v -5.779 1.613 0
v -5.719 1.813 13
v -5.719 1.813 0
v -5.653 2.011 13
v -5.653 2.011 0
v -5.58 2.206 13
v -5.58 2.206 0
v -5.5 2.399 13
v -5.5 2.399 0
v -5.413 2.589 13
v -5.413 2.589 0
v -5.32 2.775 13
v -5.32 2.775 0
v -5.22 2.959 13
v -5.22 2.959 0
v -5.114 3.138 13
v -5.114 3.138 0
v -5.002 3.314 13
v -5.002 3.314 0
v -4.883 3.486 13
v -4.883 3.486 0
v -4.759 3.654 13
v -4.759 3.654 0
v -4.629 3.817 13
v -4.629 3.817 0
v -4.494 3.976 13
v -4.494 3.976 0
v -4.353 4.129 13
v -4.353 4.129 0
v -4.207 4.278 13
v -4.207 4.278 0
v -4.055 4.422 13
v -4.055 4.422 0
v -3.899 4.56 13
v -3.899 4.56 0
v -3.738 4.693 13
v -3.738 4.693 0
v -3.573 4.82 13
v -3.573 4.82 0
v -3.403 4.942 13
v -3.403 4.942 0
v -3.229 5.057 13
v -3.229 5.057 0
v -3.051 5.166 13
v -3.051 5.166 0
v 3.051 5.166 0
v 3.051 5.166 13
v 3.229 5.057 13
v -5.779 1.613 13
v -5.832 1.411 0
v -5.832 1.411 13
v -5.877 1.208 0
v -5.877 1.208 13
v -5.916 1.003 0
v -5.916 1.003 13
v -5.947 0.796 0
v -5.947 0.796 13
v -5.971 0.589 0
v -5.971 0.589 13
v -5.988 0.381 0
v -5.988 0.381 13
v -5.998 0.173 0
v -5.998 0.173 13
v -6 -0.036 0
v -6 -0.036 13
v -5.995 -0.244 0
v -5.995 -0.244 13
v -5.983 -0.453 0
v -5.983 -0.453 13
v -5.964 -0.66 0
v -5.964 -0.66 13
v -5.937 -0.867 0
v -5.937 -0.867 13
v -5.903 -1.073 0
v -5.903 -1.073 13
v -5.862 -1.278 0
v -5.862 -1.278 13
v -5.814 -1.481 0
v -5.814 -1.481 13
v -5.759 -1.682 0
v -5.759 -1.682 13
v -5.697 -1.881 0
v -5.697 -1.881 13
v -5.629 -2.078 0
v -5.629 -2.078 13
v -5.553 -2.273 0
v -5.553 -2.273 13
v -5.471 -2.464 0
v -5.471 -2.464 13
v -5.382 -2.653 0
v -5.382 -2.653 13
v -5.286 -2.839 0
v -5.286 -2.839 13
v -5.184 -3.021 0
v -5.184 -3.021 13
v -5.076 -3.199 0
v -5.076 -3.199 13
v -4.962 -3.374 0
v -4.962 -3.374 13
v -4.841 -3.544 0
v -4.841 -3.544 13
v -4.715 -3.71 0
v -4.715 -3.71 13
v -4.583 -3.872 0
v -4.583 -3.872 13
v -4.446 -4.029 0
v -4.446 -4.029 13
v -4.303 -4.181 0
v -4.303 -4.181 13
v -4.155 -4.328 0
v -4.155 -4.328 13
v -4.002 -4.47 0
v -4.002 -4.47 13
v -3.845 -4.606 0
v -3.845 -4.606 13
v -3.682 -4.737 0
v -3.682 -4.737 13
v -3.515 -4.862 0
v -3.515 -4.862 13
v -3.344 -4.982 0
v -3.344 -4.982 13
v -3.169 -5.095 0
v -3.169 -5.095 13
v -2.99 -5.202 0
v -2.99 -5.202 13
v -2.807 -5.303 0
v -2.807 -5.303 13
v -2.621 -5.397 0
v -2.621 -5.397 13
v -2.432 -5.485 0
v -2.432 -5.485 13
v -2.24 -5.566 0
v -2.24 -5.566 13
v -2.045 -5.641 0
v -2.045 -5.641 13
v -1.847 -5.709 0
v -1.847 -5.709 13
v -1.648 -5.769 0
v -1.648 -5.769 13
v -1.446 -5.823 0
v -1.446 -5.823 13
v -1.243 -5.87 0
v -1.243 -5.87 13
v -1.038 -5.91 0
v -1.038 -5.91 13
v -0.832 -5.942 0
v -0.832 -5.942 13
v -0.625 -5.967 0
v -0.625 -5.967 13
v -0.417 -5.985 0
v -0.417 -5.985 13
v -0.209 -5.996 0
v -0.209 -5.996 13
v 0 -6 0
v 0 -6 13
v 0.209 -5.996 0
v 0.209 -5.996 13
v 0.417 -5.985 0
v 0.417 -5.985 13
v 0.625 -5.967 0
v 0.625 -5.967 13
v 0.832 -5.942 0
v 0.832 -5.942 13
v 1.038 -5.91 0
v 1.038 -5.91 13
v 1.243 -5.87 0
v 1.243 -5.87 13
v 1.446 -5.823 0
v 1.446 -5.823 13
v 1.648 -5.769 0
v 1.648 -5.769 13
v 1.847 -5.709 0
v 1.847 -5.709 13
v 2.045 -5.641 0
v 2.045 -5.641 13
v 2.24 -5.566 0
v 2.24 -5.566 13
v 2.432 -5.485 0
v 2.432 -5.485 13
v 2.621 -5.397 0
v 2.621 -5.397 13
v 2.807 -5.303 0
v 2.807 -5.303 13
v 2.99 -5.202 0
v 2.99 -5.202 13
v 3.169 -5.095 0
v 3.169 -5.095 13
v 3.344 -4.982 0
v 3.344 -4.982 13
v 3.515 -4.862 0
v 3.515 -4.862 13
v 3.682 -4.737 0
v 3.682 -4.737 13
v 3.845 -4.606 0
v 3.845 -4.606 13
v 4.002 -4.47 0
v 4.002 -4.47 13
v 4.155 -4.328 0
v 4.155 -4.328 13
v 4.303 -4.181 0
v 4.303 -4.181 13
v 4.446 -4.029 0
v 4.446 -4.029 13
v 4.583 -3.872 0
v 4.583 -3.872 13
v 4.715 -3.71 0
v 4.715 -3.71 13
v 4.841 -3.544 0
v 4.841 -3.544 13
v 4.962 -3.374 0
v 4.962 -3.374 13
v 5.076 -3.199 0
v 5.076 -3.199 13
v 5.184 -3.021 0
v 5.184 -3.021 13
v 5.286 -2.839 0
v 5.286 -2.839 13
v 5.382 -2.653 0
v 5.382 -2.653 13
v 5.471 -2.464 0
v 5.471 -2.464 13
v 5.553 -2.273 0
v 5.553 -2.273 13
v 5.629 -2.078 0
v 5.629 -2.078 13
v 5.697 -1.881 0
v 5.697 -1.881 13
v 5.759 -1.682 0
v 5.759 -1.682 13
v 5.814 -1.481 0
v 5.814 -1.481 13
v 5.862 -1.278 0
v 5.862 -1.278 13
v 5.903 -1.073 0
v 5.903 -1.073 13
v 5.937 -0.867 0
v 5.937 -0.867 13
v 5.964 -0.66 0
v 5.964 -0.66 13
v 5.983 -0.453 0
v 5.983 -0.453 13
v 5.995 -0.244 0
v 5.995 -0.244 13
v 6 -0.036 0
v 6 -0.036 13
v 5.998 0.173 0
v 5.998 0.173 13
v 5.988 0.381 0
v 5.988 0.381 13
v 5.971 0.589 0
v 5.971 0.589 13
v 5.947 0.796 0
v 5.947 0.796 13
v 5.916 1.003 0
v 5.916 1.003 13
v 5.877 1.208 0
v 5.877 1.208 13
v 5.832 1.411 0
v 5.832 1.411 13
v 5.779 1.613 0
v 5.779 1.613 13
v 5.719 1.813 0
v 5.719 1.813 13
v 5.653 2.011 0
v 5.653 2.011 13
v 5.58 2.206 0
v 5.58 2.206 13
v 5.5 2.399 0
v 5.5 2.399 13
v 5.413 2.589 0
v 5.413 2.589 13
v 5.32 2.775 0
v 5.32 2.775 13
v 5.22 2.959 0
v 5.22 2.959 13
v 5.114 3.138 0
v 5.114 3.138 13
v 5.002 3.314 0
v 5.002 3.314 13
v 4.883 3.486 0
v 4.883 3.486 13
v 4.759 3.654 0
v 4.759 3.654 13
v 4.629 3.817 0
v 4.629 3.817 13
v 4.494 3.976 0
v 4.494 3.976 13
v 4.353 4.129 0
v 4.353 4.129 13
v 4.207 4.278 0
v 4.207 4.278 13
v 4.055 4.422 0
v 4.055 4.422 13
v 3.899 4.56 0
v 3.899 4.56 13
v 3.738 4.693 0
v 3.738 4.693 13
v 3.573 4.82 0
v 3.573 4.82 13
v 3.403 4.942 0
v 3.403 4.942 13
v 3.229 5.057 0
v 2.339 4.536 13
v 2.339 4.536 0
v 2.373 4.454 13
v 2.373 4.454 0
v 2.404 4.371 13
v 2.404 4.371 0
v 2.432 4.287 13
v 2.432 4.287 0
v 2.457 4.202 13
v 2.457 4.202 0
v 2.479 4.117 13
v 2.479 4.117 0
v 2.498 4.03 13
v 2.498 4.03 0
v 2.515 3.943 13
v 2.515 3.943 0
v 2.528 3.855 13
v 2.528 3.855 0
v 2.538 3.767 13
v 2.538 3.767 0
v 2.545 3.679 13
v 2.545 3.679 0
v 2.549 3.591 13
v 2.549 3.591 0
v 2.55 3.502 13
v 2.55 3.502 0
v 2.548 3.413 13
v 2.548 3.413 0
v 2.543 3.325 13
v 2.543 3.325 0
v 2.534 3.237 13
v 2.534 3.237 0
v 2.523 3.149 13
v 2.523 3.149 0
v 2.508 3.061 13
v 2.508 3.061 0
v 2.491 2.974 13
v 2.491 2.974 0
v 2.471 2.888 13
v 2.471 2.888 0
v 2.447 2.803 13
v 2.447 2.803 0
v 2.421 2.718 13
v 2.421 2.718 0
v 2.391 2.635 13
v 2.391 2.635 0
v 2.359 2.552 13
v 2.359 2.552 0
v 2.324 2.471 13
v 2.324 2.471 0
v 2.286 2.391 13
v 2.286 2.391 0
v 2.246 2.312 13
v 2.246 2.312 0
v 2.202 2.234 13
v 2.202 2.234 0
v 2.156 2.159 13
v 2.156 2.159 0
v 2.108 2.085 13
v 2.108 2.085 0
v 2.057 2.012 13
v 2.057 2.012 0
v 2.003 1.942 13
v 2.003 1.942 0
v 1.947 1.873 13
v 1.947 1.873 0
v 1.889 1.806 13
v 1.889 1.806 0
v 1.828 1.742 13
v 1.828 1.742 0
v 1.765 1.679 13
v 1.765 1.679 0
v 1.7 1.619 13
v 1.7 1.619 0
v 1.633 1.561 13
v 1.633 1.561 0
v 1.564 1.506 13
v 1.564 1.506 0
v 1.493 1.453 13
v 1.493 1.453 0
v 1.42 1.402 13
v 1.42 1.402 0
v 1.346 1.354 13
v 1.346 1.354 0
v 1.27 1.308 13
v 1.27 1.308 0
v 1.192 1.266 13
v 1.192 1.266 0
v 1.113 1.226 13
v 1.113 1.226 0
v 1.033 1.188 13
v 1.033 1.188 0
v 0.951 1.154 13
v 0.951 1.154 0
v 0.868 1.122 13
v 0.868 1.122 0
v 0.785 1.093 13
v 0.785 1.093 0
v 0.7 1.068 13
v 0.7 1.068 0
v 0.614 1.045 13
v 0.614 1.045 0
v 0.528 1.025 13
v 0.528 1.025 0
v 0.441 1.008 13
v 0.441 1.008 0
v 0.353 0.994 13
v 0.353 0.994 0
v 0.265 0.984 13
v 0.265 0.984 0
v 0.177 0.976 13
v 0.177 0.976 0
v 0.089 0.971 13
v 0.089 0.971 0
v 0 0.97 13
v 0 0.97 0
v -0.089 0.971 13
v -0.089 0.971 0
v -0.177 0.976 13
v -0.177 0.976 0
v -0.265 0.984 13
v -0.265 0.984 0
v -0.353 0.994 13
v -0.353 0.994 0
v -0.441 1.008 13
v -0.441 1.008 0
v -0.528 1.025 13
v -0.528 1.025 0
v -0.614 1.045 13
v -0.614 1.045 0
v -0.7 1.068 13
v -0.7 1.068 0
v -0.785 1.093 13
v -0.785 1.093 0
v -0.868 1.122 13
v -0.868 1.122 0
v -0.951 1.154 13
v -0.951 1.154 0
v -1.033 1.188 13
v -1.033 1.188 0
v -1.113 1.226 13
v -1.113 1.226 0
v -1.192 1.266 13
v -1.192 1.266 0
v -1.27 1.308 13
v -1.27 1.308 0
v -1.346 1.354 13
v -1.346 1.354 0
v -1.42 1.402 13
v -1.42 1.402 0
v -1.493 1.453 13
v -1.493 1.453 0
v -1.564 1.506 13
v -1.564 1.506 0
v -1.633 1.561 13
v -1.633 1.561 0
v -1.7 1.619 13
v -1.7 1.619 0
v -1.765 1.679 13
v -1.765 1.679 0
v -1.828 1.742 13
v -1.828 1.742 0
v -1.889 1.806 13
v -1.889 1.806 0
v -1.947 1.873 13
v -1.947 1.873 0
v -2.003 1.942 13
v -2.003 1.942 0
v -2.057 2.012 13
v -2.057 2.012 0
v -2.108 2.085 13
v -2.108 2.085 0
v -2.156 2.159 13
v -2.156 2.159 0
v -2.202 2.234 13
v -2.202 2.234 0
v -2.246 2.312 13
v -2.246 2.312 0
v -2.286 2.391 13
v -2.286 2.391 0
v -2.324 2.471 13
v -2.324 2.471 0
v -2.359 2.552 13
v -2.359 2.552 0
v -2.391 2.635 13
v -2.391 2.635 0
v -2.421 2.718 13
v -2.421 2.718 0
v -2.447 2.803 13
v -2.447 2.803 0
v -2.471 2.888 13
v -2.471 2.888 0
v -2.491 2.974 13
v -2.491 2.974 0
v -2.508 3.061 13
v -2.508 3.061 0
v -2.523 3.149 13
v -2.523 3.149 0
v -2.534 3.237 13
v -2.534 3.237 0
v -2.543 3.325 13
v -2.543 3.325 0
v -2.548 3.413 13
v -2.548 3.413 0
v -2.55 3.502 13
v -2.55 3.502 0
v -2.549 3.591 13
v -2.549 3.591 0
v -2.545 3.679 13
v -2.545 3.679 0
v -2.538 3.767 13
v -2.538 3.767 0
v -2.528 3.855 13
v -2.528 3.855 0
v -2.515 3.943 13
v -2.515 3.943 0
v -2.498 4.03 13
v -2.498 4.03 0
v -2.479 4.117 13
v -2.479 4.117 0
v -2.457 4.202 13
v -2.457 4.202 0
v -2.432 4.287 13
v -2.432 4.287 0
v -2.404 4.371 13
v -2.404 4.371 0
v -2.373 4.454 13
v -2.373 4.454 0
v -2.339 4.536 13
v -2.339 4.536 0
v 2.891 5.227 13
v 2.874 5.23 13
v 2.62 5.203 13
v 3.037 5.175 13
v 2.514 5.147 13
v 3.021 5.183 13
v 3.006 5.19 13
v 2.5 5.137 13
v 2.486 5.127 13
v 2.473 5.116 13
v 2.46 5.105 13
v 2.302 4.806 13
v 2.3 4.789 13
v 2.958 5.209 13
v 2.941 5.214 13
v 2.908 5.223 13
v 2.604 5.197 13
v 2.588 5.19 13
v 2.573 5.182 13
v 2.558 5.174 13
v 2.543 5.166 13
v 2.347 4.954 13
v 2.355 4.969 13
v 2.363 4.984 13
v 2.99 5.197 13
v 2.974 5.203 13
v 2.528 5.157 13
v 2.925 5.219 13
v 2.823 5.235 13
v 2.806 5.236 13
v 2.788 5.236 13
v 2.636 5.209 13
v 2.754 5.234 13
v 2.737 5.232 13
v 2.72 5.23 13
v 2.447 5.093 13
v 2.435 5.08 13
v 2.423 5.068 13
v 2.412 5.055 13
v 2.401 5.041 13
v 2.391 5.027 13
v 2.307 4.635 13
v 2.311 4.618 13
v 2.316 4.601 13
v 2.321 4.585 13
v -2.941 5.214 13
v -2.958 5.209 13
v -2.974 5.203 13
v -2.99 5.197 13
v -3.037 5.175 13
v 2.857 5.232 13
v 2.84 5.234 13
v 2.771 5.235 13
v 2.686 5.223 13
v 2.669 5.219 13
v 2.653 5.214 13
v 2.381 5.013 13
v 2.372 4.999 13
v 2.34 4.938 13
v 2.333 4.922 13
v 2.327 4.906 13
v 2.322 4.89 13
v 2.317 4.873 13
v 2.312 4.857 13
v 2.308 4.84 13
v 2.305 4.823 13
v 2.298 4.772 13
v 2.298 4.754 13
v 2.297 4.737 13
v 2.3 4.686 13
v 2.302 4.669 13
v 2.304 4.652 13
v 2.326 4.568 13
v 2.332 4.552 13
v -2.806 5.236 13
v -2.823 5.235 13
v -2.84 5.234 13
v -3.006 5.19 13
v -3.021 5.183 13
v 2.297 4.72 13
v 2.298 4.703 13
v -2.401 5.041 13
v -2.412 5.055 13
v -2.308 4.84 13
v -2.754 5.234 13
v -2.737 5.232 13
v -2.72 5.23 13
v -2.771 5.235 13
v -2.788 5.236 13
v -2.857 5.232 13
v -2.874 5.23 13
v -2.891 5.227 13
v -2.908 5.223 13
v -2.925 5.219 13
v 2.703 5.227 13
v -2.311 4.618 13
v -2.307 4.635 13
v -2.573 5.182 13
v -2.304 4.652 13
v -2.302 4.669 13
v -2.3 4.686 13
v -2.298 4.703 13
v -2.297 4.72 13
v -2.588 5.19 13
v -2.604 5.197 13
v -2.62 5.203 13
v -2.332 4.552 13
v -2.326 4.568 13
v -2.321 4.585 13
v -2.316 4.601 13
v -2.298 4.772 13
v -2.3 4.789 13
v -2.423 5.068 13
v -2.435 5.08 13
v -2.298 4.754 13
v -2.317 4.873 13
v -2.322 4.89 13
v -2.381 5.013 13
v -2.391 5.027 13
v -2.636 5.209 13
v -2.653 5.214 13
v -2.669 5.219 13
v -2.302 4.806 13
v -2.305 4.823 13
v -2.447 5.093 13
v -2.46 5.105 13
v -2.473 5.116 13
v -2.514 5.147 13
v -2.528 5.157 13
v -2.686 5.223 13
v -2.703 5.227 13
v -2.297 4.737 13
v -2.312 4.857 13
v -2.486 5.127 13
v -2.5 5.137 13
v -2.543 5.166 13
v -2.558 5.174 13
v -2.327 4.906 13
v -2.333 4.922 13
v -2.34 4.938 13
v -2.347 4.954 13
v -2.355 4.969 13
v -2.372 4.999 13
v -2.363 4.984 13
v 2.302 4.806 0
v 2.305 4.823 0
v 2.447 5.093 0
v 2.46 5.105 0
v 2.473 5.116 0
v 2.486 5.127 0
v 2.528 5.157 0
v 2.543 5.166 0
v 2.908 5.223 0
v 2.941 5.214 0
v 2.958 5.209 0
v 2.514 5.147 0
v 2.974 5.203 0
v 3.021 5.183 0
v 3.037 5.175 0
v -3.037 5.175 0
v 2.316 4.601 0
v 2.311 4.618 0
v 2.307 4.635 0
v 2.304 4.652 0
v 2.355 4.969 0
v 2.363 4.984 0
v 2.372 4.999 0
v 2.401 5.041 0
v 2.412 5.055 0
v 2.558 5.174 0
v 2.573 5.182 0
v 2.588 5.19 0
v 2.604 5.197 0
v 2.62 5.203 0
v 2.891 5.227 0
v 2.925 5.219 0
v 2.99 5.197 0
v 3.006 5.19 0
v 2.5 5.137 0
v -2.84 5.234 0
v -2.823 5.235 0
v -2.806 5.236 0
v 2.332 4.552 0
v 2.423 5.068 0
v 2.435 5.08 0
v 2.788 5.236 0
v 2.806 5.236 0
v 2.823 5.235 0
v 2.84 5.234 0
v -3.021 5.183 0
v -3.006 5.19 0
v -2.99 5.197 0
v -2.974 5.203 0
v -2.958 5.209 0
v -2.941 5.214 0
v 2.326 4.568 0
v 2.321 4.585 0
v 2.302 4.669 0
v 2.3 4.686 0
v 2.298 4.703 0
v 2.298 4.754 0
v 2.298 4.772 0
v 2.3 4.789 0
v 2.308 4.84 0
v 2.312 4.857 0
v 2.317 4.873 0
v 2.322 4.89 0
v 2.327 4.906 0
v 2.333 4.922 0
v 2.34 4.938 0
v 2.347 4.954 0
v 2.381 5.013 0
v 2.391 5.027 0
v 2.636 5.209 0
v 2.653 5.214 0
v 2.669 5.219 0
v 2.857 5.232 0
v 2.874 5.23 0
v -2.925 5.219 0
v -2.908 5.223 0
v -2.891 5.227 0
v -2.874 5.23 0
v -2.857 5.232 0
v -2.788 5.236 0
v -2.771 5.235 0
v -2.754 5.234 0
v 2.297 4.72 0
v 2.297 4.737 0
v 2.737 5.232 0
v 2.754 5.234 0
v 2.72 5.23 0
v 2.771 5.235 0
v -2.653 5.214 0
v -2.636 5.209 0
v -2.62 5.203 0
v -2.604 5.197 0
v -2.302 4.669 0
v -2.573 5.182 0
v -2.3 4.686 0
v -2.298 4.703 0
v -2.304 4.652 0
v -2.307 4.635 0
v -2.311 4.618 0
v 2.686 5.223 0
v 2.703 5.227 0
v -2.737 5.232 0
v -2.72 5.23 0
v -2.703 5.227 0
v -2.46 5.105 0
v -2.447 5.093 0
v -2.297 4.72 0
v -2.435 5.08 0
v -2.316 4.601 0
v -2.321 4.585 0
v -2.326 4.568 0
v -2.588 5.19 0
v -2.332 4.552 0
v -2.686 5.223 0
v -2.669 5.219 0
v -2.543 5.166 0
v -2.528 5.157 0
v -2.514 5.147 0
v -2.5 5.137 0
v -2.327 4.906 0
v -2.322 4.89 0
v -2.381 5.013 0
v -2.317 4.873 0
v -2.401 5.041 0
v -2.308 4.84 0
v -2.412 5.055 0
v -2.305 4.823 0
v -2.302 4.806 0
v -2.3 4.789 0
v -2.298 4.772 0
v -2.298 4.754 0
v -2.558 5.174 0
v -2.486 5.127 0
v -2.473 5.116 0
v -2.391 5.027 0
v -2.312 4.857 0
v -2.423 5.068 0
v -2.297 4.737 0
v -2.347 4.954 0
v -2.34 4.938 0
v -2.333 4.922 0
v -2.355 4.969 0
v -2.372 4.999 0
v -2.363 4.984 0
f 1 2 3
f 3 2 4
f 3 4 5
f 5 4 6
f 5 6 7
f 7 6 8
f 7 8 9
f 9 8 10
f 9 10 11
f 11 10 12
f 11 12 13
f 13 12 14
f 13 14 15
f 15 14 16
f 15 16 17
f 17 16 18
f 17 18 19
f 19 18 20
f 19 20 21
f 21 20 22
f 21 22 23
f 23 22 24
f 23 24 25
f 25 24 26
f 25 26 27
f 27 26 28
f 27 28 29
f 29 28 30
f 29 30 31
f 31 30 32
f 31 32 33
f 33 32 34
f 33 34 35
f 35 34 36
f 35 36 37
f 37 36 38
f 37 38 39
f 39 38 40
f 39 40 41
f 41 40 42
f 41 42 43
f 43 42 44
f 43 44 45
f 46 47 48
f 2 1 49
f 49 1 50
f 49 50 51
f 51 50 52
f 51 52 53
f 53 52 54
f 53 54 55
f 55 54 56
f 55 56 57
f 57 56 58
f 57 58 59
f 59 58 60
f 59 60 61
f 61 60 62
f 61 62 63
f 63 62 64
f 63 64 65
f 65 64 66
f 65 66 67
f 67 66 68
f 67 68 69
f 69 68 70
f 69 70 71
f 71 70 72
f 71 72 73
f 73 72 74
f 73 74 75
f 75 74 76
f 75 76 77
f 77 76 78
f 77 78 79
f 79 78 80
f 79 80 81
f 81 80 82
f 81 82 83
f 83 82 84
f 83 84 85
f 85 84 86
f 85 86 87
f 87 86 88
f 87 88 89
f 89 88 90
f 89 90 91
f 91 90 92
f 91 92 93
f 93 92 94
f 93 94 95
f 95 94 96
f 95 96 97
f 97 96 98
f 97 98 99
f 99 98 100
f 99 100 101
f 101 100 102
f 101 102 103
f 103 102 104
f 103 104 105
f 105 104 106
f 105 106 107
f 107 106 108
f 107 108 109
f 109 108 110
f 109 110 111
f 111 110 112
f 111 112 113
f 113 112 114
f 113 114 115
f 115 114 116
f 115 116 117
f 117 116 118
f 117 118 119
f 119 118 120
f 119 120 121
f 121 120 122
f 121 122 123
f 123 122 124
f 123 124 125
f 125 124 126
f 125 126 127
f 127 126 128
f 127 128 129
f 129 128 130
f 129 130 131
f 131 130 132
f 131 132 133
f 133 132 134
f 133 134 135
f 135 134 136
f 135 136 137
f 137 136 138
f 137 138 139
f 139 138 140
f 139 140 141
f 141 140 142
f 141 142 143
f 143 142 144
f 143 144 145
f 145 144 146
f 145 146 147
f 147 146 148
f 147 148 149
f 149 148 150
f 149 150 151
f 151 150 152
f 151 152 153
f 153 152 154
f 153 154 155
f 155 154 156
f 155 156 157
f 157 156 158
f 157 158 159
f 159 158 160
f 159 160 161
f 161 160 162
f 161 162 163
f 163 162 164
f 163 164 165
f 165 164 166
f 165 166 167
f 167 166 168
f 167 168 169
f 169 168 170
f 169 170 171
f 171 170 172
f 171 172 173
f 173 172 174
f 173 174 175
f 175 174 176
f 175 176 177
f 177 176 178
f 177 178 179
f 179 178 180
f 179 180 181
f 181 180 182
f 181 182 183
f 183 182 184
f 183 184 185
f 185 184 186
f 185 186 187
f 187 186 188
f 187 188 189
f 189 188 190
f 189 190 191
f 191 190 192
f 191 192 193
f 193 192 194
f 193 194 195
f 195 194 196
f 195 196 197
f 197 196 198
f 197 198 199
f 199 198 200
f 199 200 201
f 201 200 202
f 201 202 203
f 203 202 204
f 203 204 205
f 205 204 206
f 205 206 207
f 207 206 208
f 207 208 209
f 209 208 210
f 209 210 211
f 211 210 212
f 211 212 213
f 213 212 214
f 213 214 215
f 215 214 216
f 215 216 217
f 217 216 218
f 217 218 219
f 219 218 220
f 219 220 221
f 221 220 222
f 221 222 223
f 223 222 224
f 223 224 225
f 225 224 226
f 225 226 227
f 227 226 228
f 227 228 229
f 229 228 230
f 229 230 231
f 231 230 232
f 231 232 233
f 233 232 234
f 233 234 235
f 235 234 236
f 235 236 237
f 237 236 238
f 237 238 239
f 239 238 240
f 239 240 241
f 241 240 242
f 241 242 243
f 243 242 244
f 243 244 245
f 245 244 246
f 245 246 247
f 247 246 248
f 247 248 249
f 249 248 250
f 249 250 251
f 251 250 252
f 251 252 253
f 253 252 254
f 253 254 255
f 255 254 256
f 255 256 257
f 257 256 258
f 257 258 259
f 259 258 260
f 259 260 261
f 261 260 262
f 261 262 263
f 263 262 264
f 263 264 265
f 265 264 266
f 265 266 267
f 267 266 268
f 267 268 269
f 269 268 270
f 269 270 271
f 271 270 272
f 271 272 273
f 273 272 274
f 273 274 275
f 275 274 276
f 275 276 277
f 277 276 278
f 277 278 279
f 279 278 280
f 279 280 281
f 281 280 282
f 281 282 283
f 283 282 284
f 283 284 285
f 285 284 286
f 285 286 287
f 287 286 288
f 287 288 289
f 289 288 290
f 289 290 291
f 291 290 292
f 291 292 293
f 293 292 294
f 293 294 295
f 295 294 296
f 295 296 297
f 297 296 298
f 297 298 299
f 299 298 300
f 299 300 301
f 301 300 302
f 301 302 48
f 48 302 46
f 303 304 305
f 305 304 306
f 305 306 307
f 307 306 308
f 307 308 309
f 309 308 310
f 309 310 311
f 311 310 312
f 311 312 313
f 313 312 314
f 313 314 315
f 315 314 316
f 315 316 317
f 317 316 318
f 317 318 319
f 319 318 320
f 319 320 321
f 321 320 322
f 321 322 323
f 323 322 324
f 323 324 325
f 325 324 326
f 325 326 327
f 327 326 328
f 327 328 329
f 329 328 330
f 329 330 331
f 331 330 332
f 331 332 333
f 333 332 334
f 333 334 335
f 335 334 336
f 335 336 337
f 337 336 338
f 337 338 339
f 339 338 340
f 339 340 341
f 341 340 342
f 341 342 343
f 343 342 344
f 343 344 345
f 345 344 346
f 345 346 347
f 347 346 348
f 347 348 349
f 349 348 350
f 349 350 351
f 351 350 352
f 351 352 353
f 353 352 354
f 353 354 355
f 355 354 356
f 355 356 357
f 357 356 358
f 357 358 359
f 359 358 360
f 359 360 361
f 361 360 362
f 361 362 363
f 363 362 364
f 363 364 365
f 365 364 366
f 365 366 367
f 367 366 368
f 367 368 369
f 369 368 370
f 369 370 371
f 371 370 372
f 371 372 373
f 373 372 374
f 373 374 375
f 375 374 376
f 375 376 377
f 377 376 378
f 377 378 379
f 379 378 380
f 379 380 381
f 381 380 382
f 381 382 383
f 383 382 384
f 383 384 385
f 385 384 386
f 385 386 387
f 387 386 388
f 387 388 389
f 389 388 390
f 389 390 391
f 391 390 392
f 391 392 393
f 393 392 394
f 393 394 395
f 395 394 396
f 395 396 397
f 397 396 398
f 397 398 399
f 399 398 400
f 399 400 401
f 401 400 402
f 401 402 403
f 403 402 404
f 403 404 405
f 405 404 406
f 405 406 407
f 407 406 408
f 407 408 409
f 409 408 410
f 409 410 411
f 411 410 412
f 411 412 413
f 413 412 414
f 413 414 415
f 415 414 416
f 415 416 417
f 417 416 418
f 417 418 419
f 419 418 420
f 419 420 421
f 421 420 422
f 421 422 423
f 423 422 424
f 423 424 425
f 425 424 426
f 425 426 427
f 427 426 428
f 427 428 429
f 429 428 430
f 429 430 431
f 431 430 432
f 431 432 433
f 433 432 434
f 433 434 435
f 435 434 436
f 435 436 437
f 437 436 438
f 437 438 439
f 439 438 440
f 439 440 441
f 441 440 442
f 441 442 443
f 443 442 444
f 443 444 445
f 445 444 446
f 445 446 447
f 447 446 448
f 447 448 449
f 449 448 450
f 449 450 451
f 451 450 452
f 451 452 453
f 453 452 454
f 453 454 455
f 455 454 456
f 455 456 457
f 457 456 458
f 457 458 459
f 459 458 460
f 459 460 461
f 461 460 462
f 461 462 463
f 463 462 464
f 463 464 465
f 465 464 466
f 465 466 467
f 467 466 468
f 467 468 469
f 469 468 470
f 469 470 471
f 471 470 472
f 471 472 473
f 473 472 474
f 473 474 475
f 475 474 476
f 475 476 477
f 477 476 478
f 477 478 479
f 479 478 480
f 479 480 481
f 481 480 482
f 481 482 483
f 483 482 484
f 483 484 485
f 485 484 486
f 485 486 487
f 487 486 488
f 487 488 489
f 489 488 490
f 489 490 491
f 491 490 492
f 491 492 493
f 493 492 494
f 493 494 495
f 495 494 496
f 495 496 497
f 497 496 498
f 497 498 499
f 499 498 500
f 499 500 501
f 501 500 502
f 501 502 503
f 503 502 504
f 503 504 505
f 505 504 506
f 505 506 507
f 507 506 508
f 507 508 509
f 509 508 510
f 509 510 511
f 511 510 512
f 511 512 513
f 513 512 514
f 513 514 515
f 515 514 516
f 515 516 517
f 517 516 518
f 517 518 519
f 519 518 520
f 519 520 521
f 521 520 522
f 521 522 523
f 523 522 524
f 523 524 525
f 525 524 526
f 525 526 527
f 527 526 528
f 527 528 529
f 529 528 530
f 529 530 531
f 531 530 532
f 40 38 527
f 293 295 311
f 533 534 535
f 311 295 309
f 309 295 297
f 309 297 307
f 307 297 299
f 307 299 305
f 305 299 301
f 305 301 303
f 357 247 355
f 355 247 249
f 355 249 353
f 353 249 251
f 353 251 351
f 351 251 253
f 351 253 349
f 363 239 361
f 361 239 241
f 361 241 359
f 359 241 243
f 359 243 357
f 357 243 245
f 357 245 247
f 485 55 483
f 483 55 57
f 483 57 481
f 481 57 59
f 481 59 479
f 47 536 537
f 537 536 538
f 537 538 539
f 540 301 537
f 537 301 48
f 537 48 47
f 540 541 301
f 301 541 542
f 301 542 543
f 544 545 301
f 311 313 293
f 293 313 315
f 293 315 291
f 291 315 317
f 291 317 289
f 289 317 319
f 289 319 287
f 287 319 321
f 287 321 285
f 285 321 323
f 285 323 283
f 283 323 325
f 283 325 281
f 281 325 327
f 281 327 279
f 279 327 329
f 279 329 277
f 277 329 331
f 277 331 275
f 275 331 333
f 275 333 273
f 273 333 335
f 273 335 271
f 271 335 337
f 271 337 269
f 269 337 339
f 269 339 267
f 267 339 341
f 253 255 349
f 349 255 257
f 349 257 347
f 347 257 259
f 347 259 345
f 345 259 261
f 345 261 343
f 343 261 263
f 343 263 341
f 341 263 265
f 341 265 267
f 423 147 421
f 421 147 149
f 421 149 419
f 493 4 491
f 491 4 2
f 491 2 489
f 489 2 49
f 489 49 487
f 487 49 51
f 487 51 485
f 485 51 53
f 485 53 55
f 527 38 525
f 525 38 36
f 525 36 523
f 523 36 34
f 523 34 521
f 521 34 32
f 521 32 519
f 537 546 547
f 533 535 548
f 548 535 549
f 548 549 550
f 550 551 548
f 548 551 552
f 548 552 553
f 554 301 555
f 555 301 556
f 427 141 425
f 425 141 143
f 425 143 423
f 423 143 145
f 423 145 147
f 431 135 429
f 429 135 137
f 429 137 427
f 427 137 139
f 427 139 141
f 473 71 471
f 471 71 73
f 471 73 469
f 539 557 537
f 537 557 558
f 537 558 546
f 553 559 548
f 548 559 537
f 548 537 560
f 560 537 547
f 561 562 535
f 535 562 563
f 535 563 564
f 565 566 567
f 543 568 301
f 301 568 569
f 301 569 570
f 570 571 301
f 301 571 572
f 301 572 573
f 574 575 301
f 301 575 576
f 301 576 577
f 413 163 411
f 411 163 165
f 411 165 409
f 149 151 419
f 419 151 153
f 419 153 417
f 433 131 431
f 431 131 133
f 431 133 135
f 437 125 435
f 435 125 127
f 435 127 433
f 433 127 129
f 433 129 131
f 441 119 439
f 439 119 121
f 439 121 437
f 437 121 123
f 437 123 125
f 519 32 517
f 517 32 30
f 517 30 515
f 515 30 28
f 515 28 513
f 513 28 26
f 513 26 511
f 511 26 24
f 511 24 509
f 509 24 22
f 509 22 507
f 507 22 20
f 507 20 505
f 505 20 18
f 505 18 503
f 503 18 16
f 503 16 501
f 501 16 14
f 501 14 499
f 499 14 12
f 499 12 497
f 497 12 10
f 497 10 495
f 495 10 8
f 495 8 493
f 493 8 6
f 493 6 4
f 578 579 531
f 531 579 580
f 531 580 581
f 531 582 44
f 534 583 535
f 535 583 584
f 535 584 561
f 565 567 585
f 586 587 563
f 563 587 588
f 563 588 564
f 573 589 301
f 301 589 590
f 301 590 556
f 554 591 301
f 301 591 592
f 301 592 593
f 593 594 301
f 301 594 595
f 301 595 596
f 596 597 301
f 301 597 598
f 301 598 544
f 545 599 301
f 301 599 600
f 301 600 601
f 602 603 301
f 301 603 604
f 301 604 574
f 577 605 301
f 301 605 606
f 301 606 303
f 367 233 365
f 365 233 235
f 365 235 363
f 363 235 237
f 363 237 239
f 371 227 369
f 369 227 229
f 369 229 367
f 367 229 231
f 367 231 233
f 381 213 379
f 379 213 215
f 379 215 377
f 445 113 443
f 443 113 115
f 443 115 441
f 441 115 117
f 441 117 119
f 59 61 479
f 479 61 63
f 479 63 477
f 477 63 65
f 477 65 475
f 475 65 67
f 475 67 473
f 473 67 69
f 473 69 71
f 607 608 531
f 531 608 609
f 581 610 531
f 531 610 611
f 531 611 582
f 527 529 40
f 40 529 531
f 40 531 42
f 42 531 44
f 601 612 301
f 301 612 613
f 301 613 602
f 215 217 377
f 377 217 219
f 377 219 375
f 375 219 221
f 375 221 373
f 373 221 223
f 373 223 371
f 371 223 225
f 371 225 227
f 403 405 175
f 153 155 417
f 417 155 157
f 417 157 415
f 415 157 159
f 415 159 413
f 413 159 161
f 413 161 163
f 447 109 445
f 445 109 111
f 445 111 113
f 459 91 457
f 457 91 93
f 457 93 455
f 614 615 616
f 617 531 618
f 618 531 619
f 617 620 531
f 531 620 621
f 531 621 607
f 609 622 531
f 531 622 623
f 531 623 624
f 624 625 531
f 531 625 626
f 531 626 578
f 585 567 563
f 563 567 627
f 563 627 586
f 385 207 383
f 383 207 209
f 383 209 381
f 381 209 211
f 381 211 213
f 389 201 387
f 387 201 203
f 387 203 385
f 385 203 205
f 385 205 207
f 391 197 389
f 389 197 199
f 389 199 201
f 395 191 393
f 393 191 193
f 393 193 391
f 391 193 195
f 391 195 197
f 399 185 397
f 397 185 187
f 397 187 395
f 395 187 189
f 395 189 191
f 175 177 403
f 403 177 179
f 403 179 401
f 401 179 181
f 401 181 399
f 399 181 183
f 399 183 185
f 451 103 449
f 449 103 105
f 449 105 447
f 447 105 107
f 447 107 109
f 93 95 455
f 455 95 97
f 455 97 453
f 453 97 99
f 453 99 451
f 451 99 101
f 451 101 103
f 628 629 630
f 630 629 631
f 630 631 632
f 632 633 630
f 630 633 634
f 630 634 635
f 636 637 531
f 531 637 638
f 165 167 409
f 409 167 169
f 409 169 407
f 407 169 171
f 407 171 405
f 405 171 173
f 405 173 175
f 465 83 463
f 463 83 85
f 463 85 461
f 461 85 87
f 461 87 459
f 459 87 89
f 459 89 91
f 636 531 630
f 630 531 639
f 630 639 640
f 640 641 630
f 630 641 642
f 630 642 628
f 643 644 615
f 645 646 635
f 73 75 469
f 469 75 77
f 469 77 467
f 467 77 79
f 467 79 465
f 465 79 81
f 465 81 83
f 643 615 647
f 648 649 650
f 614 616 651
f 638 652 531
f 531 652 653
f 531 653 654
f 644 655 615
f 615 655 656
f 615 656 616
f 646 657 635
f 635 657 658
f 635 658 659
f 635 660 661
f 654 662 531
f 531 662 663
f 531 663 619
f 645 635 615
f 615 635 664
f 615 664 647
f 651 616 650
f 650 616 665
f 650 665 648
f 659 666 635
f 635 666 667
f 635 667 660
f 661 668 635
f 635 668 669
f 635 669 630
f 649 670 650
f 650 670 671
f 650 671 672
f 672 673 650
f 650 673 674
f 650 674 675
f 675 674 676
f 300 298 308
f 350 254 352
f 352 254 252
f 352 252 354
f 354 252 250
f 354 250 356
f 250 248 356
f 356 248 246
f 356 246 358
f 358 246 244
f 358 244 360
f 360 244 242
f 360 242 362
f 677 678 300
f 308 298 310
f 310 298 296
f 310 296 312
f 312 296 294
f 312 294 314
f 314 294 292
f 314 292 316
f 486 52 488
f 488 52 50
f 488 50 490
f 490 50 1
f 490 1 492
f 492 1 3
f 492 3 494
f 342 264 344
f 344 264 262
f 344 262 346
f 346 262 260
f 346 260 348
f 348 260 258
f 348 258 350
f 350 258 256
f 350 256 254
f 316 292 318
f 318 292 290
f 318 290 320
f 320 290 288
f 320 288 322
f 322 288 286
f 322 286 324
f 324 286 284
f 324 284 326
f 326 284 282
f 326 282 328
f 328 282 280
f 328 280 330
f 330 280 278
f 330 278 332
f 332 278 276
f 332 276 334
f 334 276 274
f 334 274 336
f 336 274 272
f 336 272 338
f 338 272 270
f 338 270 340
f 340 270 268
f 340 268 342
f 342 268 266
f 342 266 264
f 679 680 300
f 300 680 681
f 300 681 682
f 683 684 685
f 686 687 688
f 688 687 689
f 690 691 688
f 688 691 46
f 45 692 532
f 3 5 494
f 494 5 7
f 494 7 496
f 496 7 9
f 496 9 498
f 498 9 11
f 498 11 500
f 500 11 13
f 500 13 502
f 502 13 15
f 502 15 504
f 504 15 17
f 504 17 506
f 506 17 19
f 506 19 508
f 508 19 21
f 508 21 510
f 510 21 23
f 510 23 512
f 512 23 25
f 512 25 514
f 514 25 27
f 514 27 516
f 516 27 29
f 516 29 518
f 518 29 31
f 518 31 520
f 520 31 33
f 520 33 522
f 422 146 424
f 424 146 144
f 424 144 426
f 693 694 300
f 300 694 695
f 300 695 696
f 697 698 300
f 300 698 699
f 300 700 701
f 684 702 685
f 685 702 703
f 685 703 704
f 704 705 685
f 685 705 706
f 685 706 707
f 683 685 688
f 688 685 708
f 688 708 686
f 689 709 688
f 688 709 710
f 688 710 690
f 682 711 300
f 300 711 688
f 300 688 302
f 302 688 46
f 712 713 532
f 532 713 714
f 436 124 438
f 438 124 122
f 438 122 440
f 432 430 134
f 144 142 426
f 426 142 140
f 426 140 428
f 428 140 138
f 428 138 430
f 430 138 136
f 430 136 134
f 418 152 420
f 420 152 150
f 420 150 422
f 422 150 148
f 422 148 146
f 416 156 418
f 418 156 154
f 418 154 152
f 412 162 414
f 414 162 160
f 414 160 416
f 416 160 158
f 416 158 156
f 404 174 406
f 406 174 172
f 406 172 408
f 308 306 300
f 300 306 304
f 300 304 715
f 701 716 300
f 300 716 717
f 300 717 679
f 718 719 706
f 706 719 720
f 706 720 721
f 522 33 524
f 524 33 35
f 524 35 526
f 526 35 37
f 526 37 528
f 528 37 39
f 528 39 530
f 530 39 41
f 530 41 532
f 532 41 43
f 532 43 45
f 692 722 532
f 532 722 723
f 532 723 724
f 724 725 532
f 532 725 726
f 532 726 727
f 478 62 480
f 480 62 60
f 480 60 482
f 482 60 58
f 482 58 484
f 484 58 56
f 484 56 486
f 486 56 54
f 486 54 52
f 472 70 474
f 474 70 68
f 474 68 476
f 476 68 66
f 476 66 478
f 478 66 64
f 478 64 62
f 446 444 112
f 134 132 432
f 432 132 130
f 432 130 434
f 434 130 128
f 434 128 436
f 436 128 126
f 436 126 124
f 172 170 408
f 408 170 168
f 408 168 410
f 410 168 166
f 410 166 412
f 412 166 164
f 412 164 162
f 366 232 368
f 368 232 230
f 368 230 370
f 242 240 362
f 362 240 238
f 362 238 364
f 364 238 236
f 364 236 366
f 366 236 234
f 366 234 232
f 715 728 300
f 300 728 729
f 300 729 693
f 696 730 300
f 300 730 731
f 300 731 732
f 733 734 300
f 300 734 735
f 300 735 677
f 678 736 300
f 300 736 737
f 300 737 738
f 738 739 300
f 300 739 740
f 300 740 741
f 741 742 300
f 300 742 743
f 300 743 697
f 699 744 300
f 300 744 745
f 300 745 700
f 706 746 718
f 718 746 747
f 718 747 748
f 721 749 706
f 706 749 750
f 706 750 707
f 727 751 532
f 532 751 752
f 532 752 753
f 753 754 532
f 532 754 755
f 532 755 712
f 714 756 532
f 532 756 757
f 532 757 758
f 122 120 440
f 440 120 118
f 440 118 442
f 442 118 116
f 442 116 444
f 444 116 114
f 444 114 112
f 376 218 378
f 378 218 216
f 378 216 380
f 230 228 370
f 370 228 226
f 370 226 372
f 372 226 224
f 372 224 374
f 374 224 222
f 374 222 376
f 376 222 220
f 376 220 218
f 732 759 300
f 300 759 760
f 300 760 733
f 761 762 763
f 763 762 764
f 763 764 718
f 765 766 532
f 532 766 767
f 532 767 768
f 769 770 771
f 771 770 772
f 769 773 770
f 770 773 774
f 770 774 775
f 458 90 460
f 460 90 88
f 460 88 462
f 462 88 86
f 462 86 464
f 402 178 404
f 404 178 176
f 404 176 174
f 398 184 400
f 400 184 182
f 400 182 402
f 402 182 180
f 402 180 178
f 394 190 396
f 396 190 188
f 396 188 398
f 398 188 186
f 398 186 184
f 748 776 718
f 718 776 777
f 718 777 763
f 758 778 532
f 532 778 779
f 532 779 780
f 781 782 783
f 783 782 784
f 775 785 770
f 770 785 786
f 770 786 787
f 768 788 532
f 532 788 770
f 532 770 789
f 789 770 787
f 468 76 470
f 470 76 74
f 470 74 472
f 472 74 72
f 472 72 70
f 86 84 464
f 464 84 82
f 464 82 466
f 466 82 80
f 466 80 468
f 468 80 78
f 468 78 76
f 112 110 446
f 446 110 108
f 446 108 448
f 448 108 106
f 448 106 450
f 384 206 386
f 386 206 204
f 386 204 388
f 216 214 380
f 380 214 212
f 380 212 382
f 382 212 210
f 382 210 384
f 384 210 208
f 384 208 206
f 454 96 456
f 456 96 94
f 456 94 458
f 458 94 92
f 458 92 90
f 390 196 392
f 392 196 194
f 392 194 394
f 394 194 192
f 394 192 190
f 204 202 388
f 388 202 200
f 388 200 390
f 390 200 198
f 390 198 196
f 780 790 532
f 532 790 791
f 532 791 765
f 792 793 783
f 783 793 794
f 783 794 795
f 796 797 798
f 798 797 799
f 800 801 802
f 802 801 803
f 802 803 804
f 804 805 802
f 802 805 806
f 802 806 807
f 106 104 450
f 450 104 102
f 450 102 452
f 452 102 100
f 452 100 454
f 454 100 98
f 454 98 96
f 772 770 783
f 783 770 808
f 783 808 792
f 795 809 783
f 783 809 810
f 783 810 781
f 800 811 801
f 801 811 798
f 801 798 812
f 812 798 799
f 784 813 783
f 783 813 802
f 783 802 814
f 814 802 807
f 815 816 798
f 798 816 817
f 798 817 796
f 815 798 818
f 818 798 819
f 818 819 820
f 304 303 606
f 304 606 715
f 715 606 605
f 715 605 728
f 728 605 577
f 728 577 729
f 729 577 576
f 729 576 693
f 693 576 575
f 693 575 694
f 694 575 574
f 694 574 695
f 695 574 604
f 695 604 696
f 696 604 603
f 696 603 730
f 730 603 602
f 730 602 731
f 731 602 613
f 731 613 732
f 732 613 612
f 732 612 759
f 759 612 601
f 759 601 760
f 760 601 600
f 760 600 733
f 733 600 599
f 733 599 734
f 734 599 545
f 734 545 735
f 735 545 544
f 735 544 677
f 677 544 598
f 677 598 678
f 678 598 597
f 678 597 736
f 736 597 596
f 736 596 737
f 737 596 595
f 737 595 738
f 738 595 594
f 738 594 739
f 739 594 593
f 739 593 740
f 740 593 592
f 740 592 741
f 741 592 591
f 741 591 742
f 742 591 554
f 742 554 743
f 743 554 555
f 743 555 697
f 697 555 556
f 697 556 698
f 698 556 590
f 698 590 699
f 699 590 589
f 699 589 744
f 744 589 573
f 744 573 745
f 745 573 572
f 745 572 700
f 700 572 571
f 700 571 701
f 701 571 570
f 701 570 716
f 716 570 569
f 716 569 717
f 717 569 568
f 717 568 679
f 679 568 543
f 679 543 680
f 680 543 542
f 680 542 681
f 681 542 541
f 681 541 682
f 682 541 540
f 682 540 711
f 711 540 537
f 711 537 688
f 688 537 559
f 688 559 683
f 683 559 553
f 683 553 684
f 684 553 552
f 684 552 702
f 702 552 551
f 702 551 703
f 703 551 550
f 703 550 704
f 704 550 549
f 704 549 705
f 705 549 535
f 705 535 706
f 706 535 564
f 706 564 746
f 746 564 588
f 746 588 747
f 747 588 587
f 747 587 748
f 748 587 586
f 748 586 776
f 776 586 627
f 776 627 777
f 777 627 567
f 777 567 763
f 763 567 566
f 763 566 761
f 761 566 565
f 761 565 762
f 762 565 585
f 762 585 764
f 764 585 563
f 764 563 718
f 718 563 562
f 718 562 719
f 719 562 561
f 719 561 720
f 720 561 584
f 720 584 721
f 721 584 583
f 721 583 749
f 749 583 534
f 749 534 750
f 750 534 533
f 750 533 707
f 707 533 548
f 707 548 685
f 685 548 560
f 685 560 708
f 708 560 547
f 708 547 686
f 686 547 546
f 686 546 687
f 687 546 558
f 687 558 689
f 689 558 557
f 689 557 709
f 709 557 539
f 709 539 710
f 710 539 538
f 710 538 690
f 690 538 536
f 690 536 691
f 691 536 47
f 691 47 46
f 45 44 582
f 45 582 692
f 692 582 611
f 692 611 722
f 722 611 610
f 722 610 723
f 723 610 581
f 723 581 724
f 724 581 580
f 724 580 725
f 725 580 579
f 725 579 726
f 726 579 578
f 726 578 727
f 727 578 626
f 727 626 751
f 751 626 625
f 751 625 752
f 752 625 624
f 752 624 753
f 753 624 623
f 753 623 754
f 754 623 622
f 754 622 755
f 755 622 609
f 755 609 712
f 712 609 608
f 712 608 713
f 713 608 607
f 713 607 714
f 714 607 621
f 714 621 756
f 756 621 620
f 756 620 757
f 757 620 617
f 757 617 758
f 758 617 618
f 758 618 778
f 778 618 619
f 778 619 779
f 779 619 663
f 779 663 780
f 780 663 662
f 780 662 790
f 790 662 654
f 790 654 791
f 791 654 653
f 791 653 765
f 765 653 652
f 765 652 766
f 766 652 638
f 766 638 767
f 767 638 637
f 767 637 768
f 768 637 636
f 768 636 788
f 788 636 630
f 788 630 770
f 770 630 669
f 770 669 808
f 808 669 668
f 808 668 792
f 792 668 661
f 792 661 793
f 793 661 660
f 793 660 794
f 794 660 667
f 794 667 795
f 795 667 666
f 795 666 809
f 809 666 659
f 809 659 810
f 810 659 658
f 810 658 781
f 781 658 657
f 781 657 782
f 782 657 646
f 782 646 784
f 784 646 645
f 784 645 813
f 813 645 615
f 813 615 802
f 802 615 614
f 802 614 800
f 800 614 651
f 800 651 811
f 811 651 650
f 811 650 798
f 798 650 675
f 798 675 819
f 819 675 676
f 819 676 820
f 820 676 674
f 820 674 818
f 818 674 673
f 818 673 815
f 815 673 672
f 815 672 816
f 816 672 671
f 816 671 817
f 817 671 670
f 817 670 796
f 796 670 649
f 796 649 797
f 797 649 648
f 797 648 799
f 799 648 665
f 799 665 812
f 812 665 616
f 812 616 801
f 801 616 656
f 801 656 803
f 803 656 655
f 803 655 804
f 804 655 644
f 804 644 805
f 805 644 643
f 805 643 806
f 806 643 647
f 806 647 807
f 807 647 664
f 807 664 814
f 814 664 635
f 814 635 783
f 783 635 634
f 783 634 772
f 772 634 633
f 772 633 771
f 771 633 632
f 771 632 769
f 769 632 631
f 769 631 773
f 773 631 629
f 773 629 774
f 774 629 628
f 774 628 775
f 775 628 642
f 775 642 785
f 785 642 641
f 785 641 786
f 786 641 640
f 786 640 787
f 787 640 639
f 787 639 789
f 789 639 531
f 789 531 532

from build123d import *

# Parameters (mm, degrees)
AUFSATZ_LINEAR_AUSTRAGEN2_DEPTH = 13
VERRUNDUNG1_R                   = 0.5


with BuildPart() as part:
    # Skizze1 → Aufsatz-Linear austragen2 (new body)
    with BuildSketch(Plane.XY):
        with BuildLine():
            ThreePointArc((-0.771783993, 5.950155415), (-3.960384832, -4.507255482), (6, 0))
            ThreePointArc((6, 0), (4.507255482, 3.960384832), (0.771783993, 5.950155415))
            ThreePointArc((0.771783993, 5.950155415), (2.057978278, 5.025485179), (2.55, 3.519754323))
            ThreePointArc((2.55, 3.519754323), (-1.505730855, 1.461776046), (-0.771783993, 5.950155415))
        make_face()
    extrude(amount=AUFSATZ_LINEAR_AUSTRAGEN2_DEPTH)

    # Verrundung1
    verrundung1_edges = [part.edges().sort_by_distance(p)[0] for p in [
        (-0.771783993, 5.950155415, 6.5),
        (0.771783993, 5.950155415, 6.5),
    ]]
    fillet(verrundung1_edges, radius=VERRUNDUNG1_R)


solid = part.part
